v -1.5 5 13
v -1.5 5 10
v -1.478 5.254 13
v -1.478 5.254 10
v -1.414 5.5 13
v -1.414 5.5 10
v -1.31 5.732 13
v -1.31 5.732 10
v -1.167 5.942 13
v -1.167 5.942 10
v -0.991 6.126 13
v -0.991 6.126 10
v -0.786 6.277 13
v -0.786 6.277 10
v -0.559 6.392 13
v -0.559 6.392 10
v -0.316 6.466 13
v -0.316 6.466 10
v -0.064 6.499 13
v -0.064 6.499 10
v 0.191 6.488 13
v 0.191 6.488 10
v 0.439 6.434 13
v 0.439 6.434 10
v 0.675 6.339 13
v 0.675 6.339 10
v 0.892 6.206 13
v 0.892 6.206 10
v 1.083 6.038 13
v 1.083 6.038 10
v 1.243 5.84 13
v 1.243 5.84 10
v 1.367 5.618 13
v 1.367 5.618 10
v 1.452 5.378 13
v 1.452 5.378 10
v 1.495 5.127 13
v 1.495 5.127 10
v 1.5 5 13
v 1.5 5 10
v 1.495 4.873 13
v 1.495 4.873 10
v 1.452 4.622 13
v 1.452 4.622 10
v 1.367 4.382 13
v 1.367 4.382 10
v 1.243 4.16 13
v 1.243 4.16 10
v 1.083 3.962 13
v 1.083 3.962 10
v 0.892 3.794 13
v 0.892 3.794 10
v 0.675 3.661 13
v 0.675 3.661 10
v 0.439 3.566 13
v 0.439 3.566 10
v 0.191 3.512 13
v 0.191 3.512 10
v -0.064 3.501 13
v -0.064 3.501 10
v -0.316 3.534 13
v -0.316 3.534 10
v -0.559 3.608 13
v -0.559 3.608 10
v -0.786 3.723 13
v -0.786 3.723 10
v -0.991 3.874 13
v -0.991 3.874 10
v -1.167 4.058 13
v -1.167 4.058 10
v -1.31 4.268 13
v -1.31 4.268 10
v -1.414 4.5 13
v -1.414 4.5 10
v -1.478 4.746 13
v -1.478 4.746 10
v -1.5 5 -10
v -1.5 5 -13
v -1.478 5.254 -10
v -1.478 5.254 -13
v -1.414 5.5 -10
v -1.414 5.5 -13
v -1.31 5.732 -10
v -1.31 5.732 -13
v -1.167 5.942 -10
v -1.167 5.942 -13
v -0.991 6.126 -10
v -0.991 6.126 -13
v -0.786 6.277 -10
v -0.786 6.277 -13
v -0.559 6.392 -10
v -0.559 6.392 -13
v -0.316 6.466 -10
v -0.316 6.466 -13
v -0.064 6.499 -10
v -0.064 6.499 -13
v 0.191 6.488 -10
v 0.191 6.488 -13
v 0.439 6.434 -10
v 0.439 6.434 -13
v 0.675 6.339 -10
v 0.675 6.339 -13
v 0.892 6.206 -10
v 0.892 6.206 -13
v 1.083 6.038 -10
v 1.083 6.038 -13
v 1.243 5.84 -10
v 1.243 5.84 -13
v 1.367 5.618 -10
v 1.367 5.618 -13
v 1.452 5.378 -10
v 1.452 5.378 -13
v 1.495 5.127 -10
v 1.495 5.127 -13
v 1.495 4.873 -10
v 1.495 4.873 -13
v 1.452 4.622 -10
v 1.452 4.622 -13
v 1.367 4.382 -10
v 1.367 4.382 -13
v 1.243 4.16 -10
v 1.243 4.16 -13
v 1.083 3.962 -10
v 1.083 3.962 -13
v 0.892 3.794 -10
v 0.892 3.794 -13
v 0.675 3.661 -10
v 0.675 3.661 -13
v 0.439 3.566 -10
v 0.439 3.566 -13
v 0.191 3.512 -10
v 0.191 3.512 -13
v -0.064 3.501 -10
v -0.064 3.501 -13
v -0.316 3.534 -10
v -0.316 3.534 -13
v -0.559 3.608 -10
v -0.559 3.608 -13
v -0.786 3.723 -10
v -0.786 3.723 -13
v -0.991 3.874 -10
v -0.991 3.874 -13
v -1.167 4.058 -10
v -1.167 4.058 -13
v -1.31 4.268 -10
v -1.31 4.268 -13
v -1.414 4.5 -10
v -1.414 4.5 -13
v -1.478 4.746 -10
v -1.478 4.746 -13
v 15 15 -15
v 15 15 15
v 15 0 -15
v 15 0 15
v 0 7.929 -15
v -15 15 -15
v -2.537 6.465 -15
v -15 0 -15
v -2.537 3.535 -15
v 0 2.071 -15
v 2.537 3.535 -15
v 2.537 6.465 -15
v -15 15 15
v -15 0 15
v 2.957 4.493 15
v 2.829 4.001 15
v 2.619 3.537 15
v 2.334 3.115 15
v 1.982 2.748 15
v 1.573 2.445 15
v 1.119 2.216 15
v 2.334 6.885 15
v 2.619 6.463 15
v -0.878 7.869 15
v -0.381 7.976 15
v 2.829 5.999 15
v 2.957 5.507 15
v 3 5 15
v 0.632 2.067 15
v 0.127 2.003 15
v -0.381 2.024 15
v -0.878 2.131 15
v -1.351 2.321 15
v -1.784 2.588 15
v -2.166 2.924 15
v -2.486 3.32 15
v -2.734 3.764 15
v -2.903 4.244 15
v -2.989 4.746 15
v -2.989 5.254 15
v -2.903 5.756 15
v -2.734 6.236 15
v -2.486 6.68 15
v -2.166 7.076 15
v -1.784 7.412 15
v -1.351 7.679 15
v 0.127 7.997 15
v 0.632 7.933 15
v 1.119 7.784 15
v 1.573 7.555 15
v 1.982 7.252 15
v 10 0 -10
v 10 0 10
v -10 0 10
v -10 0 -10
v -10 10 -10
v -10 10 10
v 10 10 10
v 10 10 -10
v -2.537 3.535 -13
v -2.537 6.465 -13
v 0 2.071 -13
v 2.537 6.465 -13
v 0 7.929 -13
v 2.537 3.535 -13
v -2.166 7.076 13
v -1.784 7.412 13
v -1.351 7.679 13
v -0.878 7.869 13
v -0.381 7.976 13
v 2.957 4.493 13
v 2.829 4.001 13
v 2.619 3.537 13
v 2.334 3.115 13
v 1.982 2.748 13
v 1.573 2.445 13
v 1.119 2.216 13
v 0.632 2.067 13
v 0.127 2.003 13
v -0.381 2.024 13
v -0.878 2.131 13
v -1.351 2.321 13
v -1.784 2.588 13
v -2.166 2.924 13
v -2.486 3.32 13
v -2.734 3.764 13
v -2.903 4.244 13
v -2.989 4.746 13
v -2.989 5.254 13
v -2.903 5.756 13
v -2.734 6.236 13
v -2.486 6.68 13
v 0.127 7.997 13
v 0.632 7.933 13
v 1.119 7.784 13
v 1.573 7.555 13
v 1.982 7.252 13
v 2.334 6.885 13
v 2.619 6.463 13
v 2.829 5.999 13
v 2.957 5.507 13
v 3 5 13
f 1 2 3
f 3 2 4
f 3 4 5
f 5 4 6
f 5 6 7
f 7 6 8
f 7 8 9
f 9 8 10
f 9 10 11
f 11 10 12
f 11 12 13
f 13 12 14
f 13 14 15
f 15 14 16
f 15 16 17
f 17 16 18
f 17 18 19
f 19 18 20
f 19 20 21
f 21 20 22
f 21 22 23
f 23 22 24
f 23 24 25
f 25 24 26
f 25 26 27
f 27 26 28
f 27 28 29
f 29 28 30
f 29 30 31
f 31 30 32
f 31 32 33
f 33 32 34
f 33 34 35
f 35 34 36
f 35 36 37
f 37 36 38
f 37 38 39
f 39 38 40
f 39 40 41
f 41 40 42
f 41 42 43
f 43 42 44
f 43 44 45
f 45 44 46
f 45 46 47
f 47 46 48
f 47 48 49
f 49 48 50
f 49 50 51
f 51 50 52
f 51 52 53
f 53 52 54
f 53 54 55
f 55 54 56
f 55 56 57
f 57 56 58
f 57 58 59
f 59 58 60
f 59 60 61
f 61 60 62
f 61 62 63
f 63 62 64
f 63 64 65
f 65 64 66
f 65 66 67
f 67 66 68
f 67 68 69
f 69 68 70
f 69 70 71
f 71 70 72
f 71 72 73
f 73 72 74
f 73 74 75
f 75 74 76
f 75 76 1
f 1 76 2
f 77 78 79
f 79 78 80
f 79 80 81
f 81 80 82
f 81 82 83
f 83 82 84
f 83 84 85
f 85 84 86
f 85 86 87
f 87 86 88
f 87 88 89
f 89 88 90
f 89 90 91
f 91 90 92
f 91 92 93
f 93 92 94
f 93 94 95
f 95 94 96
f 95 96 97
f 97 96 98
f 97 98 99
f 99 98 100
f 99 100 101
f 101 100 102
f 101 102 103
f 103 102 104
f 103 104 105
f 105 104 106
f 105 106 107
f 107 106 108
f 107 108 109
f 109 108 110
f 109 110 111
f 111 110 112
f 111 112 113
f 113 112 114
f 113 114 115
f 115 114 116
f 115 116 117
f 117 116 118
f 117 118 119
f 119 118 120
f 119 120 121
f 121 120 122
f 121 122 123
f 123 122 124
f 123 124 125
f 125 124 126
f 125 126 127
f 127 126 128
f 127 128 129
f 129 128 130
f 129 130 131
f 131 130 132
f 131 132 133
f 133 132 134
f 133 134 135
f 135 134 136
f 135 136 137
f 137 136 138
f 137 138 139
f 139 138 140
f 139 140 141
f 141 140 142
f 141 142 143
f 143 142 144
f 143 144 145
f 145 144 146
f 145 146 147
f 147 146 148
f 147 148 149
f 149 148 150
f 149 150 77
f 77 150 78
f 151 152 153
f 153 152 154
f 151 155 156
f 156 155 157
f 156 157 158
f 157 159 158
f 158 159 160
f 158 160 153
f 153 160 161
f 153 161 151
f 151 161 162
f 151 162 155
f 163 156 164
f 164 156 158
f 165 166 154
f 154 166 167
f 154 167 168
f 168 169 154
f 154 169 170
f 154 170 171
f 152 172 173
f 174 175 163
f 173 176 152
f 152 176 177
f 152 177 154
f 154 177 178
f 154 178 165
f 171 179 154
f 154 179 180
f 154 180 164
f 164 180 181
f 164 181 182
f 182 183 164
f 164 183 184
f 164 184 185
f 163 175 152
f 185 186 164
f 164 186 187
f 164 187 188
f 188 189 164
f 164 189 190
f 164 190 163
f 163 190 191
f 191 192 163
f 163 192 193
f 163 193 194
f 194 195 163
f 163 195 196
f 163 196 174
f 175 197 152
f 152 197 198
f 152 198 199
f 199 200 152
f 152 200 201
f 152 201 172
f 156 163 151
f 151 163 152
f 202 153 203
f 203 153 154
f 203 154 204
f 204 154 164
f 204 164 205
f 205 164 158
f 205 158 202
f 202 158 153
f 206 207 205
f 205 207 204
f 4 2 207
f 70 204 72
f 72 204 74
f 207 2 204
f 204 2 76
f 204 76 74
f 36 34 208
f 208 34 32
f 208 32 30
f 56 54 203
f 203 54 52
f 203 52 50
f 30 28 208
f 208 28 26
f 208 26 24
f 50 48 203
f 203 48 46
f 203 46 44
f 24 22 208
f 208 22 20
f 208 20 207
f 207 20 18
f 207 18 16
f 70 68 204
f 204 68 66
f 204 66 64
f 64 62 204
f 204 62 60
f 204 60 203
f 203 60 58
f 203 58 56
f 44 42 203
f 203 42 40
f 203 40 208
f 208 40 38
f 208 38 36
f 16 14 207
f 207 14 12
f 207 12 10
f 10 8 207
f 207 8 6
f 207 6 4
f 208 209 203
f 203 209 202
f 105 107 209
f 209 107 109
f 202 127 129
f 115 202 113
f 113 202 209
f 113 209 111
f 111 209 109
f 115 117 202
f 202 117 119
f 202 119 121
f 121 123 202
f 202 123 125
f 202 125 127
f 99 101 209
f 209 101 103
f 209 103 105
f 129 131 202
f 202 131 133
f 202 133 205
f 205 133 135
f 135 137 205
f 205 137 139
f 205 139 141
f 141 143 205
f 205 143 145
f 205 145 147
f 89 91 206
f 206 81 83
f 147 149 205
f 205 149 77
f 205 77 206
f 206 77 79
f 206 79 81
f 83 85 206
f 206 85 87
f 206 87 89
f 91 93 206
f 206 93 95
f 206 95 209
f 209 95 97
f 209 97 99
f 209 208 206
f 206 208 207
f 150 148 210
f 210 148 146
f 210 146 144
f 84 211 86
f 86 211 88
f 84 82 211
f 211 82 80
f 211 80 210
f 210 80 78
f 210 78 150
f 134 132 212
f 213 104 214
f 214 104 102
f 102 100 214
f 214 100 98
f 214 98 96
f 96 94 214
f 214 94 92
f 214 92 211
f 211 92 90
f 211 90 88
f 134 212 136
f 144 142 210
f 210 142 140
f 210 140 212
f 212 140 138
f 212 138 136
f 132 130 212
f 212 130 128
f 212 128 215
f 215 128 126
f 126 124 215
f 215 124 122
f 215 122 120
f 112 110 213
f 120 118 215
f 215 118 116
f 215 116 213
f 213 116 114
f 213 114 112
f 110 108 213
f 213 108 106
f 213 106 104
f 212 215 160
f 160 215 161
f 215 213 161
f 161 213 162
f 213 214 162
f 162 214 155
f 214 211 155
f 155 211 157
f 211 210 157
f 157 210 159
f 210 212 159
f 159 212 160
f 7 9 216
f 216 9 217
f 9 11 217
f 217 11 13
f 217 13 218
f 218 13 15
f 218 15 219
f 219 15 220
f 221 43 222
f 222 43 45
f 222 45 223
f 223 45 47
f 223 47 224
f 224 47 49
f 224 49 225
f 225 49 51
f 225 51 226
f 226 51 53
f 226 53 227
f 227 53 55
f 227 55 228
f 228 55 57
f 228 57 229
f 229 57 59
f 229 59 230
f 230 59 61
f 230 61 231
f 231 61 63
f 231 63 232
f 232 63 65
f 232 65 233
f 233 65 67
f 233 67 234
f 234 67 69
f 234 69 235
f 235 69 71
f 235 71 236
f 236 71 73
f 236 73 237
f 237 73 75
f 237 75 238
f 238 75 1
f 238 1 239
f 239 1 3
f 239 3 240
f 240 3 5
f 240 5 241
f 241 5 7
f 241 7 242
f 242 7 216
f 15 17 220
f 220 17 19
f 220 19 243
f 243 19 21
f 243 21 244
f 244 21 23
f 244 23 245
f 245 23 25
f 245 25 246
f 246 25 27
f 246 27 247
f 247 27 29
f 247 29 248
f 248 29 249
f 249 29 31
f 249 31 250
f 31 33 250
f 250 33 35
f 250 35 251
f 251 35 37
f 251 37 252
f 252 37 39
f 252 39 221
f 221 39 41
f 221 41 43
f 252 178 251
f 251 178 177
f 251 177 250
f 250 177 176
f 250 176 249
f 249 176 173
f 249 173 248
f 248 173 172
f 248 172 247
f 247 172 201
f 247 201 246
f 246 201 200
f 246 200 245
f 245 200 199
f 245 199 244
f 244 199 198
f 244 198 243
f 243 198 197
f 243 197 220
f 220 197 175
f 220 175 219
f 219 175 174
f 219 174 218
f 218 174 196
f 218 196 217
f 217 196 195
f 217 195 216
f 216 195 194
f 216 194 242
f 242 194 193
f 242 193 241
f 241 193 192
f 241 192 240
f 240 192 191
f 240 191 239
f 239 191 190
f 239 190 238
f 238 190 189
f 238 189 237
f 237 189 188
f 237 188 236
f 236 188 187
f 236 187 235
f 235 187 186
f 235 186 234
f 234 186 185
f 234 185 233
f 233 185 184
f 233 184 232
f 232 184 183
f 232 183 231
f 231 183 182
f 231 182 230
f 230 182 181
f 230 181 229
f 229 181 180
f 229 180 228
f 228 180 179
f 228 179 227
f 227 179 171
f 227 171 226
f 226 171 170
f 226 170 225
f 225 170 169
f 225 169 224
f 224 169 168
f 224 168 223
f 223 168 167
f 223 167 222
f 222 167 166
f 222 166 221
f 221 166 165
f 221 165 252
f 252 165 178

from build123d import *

# Parameters (mm, degrees)
SKETCH1_W           = 30
SKETCH1_H           = 30
BOSS_EXTRUDE1_DEPTH = 15
SKETCH2_W           = 20
SKETCH2_H           = 20
CUT_EXTRUDE1_DEPTH  = 10
SKETCH3_R           = 1.5
CUT_EXTRUDE2_DEPTH  = 30
CUT_EXTRUDE3_DEPTH  = 2
SKETCH5_R           = 3
CUT_EXTRUDE4_DEPTH  = 2


with BuildPart() as part:
    # Sketch1 → Boss-Extrude1 (new body)
    with BuildSketch(Plane(origin=(0, 0, 0), x_dir=(1, 0, 0), z_dir=(0, 1, 0))):
        Rectangle(SKETCH1_W, SKETCH1_H)
    extrude(amount=BOSS_EXTRUDE1_DEPTH)

    # Sketch2 → Cut-Extrude1 (cut)
    with BuildSketch(Plane.XZ):
        Rectangle(SKETCH2_W, SKETCH2_H)
    extrude(amount=-CUT_EXTRUDE1_DEPTH, mode=Mode.SUBTRACT)

    # Sketch3 → Cut-Extrude2 (cut)
    with BuildSketch(Plane(origin=(0, 0, -15), x_dir=(-1, 0, 0), z_dir=(0, 0, -1))):
        with Locations((0, 5)):
            Circle(SKETCH3_R)
    extrude(amount=-CUT_EXTRUDE2_DEPTH, mode=Mode.SUBTRACT)

    # Sketch4 → Cut-Extrude3 (cut)
    with BuildSketch(Plane(origin=(0, 0, -15), x_dir=(-1, 0, 0), z_dir=(0, 0, -1))):
        Polygon((0, 2.070756219), (2.536799528, 3.53537811), (2.536799528, 6.46462189), (0, 7.929243781), (-2.536799528, 6.46462189), (-2.536799528, 3.53537811), align=None)
    extrude(amount=-CUT_EXTRUDE3_DEPTH, mode=Mode.SUBTRACT)

    # Sketch5 → Cut-Extrude4 (cut)
    with BuildSketch(Plane.XY.offset(15)):
        with Locations((0, 5)):
            Circle(SKETCH5_R)
    extrude(amount=-CUT_EXTRUDE4_DEPTH, mode=Mode.SUBTRACT)


solid = part.part
